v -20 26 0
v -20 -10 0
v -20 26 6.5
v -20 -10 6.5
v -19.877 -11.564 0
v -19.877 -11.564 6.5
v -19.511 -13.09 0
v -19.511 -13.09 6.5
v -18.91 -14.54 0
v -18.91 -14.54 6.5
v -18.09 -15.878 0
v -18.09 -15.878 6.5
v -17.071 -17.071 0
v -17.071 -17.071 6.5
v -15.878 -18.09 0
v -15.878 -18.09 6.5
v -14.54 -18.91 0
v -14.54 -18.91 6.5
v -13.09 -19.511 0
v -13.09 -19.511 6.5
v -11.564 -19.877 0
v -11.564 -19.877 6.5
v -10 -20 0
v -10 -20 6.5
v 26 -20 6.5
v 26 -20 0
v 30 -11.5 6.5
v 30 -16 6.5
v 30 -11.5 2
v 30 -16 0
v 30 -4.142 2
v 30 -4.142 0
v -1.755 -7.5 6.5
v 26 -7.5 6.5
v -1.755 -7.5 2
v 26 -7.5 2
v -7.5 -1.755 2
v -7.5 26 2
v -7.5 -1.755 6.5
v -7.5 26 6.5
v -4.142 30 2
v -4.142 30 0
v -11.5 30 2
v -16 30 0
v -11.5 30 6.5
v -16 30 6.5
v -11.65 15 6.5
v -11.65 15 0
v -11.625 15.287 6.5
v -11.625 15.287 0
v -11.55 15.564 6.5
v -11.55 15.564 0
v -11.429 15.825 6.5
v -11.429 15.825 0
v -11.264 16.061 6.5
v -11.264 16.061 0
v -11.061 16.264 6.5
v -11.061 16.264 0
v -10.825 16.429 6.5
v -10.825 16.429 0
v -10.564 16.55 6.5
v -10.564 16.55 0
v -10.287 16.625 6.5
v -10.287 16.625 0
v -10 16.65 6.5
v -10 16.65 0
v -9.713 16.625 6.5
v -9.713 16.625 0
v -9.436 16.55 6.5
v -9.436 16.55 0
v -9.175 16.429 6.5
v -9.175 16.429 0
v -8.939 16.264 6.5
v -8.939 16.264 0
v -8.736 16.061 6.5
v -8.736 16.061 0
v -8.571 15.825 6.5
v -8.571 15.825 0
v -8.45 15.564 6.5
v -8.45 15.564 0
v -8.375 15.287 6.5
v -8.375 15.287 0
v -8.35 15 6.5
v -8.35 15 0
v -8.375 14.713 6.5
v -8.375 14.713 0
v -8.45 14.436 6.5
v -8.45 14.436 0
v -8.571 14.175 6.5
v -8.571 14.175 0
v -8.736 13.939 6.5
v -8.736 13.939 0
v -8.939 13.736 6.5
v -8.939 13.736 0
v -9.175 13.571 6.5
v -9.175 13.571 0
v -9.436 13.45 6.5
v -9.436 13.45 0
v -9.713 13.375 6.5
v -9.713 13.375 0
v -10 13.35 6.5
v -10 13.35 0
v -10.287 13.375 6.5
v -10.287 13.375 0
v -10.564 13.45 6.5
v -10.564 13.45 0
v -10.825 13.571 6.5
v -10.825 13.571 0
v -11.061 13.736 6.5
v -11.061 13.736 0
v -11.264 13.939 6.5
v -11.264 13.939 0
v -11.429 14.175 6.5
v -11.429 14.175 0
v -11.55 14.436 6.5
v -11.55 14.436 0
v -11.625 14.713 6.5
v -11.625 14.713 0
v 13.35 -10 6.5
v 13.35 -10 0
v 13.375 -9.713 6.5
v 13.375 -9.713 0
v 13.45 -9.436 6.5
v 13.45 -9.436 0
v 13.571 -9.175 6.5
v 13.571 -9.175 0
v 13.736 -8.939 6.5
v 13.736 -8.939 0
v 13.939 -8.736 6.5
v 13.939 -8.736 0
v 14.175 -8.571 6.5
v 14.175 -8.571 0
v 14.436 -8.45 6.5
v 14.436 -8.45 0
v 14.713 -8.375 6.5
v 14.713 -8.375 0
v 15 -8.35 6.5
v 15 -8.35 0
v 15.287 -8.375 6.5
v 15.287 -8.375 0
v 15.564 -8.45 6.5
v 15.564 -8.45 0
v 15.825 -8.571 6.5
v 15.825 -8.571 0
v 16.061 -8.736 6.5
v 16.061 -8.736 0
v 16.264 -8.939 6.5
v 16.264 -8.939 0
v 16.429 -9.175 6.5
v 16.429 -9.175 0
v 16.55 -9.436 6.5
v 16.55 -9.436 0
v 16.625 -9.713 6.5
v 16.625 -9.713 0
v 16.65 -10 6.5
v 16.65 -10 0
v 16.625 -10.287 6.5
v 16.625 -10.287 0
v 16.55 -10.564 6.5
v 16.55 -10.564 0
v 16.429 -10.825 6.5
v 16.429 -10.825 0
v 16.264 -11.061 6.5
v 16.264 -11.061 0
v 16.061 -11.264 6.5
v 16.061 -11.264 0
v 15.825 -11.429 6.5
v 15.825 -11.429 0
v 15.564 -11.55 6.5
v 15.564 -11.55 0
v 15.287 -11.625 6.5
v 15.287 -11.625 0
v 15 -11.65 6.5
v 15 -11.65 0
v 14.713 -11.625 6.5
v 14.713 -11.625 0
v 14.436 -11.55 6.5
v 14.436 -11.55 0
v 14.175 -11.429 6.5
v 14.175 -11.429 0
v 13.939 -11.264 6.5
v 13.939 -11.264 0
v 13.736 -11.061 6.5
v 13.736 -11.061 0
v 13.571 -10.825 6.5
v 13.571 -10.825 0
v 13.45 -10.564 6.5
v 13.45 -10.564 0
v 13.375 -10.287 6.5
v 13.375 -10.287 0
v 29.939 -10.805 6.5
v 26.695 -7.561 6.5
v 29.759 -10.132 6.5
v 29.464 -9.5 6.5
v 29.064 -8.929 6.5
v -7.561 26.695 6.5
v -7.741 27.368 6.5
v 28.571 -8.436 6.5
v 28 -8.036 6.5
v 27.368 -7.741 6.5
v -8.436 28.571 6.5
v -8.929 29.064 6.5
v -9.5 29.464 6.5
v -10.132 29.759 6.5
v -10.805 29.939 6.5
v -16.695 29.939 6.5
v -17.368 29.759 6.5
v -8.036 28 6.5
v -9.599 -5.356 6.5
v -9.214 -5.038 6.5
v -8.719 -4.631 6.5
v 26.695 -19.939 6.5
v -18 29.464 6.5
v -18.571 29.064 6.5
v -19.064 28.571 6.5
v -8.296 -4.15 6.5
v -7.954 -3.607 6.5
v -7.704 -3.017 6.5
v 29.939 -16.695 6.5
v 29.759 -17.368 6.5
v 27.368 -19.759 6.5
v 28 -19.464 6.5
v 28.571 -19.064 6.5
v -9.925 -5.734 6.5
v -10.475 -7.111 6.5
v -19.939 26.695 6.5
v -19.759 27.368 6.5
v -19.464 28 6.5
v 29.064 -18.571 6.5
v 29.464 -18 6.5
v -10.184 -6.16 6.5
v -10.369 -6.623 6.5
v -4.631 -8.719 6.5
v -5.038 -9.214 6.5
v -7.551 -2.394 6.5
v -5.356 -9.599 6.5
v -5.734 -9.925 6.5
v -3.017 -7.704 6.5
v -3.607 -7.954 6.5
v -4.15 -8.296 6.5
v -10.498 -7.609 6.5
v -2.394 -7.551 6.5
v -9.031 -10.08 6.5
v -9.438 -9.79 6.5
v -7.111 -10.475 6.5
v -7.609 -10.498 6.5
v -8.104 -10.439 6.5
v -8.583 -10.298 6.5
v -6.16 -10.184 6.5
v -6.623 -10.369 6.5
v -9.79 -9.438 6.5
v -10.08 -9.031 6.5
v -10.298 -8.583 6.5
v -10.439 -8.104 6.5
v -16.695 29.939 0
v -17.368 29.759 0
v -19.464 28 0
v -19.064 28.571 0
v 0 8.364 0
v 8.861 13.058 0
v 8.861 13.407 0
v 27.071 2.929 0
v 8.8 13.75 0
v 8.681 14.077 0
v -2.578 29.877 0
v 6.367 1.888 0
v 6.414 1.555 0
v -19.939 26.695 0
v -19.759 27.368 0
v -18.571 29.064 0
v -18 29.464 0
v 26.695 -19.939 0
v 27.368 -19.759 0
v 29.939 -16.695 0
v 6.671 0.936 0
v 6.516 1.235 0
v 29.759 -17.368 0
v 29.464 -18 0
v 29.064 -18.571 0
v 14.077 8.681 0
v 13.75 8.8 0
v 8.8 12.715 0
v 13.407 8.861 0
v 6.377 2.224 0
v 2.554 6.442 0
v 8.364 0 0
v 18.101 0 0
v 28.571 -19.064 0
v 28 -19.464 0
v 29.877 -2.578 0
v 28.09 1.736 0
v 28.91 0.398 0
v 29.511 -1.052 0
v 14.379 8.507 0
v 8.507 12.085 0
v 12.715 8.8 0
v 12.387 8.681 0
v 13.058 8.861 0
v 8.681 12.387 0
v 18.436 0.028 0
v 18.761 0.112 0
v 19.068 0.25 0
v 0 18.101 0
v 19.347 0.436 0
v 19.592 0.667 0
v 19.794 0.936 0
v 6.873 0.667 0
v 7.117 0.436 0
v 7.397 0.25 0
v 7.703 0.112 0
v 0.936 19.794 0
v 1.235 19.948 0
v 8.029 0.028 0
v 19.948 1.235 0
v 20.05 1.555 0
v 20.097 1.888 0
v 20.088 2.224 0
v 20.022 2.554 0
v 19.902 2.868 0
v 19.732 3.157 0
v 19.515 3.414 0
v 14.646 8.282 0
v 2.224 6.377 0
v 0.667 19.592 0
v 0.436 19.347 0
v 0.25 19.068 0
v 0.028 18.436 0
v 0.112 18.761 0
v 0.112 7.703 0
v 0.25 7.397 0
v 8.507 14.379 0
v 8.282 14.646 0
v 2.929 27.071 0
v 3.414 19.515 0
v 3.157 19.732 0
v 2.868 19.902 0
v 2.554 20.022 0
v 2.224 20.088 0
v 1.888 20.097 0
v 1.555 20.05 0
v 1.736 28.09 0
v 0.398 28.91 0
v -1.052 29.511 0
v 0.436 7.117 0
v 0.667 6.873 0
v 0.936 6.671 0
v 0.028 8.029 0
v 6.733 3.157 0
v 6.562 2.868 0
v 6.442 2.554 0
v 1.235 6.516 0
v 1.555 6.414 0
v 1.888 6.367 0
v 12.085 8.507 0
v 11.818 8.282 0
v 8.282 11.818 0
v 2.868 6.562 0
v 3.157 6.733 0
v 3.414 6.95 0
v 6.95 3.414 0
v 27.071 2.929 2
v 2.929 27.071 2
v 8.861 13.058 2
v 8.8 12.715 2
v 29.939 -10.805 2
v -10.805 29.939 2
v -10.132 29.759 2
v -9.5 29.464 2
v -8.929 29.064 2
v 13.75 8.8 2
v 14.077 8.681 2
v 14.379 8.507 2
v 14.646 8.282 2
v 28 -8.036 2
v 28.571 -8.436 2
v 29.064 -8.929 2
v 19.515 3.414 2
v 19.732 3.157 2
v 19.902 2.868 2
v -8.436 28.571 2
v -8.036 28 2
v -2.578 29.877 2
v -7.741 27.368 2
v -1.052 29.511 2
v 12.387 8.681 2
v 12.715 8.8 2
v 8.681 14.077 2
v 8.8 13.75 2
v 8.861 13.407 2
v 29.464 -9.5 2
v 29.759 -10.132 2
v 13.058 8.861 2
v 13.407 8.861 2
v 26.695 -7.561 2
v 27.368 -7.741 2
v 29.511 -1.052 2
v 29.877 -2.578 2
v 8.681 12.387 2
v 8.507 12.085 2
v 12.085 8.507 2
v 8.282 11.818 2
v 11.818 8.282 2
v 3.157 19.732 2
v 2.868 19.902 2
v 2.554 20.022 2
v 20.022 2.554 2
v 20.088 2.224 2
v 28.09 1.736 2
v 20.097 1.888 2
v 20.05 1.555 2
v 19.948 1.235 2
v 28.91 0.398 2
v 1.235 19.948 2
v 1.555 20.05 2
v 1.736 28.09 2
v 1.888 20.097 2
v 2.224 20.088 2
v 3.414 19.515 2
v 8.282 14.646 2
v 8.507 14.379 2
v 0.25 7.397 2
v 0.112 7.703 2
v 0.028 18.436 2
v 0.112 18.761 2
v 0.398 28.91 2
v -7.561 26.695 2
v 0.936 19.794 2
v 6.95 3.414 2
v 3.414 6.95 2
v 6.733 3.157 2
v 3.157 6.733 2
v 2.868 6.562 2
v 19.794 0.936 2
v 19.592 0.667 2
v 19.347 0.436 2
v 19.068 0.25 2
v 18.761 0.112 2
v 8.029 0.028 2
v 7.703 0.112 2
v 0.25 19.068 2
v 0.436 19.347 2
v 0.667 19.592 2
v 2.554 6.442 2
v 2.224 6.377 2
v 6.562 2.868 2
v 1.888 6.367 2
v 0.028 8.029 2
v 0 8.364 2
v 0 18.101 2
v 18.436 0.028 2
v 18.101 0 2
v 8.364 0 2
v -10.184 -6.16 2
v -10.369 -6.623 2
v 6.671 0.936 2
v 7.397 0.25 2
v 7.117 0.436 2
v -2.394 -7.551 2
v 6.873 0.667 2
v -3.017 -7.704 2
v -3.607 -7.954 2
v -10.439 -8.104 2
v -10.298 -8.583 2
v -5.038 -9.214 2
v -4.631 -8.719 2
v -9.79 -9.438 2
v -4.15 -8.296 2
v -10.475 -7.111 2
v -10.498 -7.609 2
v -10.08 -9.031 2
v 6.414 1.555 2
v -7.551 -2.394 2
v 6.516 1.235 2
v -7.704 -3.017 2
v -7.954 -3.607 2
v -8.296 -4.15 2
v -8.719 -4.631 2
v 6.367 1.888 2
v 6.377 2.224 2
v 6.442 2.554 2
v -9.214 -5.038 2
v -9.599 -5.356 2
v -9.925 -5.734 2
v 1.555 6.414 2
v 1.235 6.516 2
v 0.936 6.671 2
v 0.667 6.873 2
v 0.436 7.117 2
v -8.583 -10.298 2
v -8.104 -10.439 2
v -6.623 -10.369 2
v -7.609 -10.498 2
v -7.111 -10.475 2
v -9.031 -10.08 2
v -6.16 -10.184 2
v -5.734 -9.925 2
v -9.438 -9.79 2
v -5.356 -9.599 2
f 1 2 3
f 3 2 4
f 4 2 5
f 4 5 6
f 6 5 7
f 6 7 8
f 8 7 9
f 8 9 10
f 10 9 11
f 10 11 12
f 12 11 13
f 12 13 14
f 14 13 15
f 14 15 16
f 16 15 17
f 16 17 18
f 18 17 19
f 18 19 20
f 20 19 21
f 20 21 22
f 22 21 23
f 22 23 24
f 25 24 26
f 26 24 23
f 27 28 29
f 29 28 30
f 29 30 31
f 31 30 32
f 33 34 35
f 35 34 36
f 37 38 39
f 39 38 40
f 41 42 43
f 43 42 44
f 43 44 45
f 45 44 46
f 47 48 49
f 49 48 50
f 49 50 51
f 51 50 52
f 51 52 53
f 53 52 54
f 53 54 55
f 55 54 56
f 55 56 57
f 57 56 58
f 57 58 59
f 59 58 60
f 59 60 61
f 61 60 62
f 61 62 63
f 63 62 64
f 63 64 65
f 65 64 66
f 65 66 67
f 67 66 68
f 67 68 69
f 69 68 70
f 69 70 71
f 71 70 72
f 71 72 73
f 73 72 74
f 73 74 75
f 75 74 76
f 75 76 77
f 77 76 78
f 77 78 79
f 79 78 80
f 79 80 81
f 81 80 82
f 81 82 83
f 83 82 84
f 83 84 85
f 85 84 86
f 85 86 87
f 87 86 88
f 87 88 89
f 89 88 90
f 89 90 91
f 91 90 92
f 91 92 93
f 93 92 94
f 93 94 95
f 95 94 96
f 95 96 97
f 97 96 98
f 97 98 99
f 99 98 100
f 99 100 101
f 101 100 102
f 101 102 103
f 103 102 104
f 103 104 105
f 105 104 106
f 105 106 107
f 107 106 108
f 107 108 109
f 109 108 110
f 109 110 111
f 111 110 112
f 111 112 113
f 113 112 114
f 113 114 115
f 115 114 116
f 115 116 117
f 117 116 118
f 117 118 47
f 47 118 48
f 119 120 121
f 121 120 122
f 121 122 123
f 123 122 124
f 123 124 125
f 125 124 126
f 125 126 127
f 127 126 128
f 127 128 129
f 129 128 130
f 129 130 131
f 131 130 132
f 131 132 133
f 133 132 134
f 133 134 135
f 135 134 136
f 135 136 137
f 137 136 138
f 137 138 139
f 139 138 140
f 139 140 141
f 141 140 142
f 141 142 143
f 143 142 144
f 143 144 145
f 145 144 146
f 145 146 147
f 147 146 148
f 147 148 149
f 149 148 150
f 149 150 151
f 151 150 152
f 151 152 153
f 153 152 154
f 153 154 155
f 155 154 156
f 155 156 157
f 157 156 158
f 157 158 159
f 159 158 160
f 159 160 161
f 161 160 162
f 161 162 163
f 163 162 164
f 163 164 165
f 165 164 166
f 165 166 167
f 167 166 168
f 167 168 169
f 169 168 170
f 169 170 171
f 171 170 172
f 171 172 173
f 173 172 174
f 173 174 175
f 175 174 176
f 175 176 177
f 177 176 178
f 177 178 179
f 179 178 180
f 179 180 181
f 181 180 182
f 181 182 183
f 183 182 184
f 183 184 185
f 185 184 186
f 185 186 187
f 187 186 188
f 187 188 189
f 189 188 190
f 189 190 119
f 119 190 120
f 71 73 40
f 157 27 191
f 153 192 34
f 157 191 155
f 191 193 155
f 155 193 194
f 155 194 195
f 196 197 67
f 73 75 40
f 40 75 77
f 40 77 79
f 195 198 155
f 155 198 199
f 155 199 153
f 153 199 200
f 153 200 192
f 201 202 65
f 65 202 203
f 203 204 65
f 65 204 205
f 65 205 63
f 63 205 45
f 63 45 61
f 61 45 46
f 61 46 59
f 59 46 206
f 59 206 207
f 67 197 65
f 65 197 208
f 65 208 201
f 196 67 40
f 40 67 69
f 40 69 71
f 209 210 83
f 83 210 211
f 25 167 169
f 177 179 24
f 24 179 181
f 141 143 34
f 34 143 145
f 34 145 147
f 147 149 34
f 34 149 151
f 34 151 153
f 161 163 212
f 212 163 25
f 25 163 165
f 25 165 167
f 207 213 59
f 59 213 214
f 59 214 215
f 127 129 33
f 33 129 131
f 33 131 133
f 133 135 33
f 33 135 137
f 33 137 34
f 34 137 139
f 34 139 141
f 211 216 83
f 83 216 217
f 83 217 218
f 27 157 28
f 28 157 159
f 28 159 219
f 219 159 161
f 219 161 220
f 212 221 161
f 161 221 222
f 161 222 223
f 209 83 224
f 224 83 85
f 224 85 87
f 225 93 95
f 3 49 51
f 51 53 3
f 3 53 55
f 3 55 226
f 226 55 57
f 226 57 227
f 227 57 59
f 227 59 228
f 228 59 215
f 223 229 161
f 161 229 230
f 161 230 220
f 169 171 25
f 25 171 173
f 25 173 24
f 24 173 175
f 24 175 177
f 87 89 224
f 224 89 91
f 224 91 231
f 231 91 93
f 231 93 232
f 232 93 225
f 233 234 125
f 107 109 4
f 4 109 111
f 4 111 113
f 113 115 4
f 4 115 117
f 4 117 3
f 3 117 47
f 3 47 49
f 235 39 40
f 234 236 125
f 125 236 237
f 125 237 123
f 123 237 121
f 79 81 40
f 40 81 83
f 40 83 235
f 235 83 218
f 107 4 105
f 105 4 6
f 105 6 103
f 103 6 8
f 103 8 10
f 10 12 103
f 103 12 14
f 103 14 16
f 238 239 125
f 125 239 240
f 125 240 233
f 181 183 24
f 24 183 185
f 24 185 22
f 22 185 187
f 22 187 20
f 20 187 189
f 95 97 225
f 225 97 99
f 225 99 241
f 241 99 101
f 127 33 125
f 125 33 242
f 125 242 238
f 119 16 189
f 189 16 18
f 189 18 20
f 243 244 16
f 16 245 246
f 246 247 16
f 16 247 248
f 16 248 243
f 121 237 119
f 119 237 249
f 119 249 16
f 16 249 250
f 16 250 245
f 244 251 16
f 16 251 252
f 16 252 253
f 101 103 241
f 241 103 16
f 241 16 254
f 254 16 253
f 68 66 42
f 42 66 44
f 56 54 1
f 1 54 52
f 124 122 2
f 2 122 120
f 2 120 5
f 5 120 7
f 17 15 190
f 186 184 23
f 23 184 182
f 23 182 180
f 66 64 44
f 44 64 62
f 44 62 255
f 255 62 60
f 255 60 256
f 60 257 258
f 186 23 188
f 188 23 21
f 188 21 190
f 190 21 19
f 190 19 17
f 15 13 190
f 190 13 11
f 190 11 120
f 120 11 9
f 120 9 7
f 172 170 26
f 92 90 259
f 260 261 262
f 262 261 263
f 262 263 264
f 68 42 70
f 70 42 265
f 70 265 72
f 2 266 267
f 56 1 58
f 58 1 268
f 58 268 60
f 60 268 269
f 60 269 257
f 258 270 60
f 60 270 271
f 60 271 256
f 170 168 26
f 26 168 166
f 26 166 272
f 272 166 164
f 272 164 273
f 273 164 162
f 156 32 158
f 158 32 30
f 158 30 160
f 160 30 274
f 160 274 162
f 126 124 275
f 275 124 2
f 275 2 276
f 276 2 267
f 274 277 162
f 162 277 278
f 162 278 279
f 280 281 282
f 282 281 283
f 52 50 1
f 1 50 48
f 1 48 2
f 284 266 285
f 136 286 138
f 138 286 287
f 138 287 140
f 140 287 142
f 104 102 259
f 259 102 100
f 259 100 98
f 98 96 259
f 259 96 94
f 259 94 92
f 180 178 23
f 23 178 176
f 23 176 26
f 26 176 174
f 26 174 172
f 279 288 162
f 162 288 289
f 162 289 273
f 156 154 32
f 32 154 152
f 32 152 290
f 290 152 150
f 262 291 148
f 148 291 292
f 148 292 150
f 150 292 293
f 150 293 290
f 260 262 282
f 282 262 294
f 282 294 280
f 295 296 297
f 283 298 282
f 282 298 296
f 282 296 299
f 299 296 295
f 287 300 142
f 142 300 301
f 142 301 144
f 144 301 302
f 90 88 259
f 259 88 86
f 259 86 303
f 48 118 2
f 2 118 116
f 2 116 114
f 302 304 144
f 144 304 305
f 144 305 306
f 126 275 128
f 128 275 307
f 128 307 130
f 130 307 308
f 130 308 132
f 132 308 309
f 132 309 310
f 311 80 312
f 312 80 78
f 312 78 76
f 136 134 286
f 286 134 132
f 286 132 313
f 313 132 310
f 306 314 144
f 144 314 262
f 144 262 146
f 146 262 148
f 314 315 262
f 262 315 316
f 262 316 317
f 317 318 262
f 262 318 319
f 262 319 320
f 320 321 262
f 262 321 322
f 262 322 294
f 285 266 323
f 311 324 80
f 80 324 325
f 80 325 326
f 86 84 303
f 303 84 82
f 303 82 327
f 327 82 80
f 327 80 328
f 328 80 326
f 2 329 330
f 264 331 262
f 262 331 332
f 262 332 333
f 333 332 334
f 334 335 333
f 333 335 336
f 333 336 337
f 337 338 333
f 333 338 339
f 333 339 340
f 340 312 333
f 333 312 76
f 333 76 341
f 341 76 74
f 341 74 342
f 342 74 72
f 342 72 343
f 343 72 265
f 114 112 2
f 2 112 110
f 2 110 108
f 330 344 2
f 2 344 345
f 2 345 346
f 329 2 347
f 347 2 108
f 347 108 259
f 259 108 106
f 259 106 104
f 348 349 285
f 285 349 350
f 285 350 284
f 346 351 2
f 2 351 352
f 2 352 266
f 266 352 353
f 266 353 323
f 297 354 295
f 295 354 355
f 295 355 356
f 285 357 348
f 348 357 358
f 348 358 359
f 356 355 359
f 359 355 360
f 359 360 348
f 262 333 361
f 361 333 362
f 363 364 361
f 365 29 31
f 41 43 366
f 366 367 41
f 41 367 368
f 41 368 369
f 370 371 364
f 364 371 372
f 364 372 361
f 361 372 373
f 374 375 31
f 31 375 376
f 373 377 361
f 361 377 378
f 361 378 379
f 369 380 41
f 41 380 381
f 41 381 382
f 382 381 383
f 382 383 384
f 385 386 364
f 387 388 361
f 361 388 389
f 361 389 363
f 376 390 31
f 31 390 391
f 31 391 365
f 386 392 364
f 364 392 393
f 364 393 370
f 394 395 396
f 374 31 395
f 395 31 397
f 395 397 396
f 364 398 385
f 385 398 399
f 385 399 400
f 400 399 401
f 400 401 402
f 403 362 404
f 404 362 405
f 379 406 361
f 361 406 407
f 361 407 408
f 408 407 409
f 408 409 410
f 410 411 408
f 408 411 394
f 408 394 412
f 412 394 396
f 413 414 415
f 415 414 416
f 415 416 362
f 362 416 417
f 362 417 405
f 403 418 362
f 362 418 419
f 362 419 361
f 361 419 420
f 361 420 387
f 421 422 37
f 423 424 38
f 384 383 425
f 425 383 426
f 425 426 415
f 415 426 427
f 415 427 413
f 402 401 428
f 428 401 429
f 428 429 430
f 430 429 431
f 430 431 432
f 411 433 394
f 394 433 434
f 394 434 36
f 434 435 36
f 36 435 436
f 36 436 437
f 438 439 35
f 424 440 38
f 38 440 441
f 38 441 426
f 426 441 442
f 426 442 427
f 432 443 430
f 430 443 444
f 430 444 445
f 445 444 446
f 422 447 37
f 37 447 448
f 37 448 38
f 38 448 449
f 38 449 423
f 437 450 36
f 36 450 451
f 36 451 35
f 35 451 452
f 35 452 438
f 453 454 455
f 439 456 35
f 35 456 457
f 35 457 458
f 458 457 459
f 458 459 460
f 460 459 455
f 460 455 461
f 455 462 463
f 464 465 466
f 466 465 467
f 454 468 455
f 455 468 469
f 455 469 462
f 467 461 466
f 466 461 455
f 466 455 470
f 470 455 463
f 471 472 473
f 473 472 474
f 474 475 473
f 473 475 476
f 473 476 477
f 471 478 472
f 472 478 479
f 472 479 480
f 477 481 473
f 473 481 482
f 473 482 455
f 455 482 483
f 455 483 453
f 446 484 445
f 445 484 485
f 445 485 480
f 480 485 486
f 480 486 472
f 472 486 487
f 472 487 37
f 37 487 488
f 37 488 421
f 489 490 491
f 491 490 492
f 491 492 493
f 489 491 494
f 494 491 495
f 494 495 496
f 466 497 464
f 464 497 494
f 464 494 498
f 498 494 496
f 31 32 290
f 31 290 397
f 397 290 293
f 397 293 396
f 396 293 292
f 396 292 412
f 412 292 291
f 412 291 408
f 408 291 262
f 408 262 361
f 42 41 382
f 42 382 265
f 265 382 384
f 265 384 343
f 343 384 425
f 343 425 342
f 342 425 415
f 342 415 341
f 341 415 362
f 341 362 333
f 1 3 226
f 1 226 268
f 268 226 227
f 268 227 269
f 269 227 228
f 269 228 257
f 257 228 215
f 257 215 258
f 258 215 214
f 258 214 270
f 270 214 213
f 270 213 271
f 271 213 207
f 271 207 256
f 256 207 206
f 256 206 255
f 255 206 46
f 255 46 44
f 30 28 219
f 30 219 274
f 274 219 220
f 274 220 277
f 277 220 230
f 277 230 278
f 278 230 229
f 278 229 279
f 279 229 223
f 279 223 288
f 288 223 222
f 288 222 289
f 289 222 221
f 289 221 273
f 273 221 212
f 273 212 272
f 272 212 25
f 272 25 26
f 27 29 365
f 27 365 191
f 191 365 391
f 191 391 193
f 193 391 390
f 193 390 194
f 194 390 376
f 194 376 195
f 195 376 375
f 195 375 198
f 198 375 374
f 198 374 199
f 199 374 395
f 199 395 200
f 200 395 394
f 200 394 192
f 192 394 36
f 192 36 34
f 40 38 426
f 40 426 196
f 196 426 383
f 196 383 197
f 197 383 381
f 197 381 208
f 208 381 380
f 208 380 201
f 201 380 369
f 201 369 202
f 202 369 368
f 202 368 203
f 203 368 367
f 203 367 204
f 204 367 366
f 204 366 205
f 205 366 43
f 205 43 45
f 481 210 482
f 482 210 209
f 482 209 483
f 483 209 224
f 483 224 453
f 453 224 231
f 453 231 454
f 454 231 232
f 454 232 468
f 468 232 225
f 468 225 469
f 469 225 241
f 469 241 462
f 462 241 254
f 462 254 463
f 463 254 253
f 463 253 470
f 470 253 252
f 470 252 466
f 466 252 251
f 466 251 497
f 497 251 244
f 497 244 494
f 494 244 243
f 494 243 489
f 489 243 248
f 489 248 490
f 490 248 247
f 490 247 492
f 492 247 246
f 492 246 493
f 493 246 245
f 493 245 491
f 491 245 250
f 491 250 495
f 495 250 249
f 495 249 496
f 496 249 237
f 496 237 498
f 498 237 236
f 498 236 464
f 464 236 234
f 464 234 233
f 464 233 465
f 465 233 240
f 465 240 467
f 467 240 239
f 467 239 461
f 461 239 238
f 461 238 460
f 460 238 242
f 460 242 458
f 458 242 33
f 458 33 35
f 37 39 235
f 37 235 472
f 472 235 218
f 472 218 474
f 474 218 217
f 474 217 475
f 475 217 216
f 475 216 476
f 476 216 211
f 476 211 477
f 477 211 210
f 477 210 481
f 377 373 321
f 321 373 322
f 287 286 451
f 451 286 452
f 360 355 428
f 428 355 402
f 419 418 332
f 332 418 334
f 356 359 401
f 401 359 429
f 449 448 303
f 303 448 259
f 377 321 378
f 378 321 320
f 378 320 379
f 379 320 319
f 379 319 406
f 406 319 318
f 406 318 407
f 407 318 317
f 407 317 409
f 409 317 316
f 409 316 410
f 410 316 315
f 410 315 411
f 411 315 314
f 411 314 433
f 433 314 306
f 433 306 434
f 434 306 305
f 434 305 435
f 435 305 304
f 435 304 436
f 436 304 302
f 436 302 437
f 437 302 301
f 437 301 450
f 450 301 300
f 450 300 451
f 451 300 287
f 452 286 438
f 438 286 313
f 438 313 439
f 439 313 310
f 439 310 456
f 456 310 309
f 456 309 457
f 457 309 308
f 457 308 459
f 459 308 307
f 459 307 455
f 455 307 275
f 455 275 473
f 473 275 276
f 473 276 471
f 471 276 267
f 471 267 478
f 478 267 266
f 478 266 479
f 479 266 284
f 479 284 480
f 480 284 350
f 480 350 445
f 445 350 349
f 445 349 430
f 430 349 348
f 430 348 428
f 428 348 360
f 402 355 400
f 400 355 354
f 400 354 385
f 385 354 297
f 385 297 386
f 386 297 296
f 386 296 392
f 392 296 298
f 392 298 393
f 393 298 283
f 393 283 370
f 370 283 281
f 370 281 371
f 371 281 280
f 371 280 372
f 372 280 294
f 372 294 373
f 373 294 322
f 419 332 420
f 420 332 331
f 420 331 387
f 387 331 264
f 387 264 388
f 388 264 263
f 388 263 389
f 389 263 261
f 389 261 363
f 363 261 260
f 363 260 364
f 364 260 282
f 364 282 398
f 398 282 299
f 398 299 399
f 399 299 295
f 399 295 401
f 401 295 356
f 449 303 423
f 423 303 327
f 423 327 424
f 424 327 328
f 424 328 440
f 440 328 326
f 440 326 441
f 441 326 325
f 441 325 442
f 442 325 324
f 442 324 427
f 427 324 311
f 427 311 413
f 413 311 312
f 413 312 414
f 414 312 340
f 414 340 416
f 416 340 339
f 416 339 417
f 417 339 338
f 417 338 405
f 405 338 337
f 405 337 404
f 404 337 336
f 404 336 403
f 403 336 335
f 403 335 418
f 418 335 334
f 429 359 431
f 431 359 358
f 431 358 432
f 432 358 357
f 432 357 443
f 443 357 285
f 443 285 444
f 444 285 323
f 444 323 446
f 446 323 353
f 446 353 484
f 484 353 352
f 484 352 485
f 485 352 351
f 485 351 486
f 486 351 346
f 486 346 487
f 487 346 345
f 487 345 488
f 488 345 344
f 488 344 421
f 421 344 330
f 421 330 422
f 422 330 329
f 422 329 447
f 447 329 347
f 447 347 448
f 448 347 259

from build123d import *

# Parameters (mm, degrees)
SKETCH1_W           = 12.5
SKETCH1_H           = 30
SKETCH1_R           = 1.65
SKETCH1_W_2         = 30
SKETCH1_H_2         = 12.5
BOSS_EXTRUDE1_DEPTH = 6.5
SKETCH1_3_W         = 7.5
SKETCH1_3_H         = 30
SKETCH1_3_H_2       = 7.5
SKETCH1_3_W_2       = 30
BOSS_EXTRUDE2_DEPTH = 2
FILLET1_R           = 10
FILLET2_R           = 4
SKETCH2_R           = 3
CUT_EXTRUDE1_DEPTH  = 4.5
FILLET3_R           = 4
CUT_EXTRUDE2_DEPTH  = 2
FILLET4_R           = 2


with BuildPart() as part:
    # Sketch1 → Boss-Extrude1 (new body)
    # profile 1 of 3: a face of its own
    with BuildSketch(Plane.XY):
        with Locations((-13.75, 15)):
            Rectangle(SKETCH1_W, SKETCH1_H)
        with Locations(Location((-10, 15, 0), (0, 0, 180))):
            Circle(SKETCH1_R, mode=Mode.SUBTRACT)
    # profile 2 of 3: a face of its own
    with BuildSketch(Plane.XY):
        with BuildLine():
            Line((-7.5, 0), (-20, 0))
            Line((-20, 0), (-20, -10))
            ThreePointArc((-20, -10), (-17.071067812, -17.071067812), (-10, -20))
            Line((-10, -20), (0, -20))
            Line((0, -20), (0, -7.5))
            Line((0, -7.5), (-7.5, -7.5))
            Line((-7.5, -7.5), (-7.5, 0))
        make_face()
    # profile 3 of 3: a face of its own
    with BuildSketch(Plane.XY):
        with Locations((15, -13.75)):
            Rectangle(SKETCH1_W_2, SKETCH1_H_2)
        with Locations(Location((15, -10, 0), (0, 0, 180))):
            Circle(SKETCH1_R, mode=Mode.SUBTRACT)
    extrude(amount=BOSS_EXTRUDE1_DEPTH)

    # Sketch1<3> → Boss-Extrude2 (add)
    with BuildSketch(Plane.XY):
        with Locations((-3.75, 15)):
            Rectangle(SKETCH1_3_W, SKETCH1_3_H)
        with Locations((-3.75, -3.75)):
            Rectangle(SKETCH1_3_W, SKETCH1_3_H_2)
        with Locations((15, -3.75)):
            Rectangle(SKETCH1_3_W_2, SKETCH1_3_H_2)
        Polygon((0, 30), (30, 0), (0, 0), align=None)
    extrude(amount=BOSS_EXTRUDE2_DEPTH)

    # Fillet1
    fillet1_edges = [part.edges().sort_by_distance(p)[0] for p in [
        (30, 0, 1),
        (0, 30, 1),
    ]]
    fillet(fillet1_edges, radius=FILLET1_R)

    # Fillet2
    fillet2_edges = [part.edges().sort_by_distance(p)[0] for p in [
        (-20, 30, 3.25),
        (-7.5, 30, 4.25),
        (30, -7.5, 4.25),
        (30, -20, 3.25),
    ]]
    fillet(fillet2_edges, radius=FILLET2_R)

    # Sketch2 → Cut-Extrude1 (cut)
    with BuildSketch(Plane.XY.offset(6.5)):
        with Locations((-7.5, -7.5)):
            Circle(SKETCH2_R)
    extrude(amount=-CUT_EXTRUDE1_DEPTH, mode=Mode.SUBTRACT)

    # Fillet3
    fillet3_edges = [part.edges().sort_by_distance(p)[0] for p in [
        (-4.5, -7.5, 4.25),
        (-7.5, -4.5, 4.25),
    ]]
    fillet(fillet3_edges, radius=FILLET3_R)

    # Sketch3 → Cut-Extrude2 (cut)
    with BuildSketch(Plane.XY.offset(2)):
        Polygon((3.535533906, 0), (22.928932188, 0), (13.232233047, 9.696699141), align=None)
        Polygon((0, 22.928932188), (0, 3.535533906), (9.696699141, 13.232233047), align=None)
    extrude(amount=-CUT_EXTRUDE2_DEPTH, mode=Mode.SUBTRACT)

    # Fillet4
    fillet4_edges = [part.edges().sort_by_distance(p)[0] for p in [
        (0, 22.928932188, 1),
        (9.696699141, 13.232233047, 1),
        (0, 3.535533906, 1),
        (13.232233047, 9.696699141, 1),
        (22.928932188, 0, 1),
        (3.535533906, 0, 1),
    ]]
    fillet(fillet4_edges, radius=FILLET4_R)


solid = part.part
